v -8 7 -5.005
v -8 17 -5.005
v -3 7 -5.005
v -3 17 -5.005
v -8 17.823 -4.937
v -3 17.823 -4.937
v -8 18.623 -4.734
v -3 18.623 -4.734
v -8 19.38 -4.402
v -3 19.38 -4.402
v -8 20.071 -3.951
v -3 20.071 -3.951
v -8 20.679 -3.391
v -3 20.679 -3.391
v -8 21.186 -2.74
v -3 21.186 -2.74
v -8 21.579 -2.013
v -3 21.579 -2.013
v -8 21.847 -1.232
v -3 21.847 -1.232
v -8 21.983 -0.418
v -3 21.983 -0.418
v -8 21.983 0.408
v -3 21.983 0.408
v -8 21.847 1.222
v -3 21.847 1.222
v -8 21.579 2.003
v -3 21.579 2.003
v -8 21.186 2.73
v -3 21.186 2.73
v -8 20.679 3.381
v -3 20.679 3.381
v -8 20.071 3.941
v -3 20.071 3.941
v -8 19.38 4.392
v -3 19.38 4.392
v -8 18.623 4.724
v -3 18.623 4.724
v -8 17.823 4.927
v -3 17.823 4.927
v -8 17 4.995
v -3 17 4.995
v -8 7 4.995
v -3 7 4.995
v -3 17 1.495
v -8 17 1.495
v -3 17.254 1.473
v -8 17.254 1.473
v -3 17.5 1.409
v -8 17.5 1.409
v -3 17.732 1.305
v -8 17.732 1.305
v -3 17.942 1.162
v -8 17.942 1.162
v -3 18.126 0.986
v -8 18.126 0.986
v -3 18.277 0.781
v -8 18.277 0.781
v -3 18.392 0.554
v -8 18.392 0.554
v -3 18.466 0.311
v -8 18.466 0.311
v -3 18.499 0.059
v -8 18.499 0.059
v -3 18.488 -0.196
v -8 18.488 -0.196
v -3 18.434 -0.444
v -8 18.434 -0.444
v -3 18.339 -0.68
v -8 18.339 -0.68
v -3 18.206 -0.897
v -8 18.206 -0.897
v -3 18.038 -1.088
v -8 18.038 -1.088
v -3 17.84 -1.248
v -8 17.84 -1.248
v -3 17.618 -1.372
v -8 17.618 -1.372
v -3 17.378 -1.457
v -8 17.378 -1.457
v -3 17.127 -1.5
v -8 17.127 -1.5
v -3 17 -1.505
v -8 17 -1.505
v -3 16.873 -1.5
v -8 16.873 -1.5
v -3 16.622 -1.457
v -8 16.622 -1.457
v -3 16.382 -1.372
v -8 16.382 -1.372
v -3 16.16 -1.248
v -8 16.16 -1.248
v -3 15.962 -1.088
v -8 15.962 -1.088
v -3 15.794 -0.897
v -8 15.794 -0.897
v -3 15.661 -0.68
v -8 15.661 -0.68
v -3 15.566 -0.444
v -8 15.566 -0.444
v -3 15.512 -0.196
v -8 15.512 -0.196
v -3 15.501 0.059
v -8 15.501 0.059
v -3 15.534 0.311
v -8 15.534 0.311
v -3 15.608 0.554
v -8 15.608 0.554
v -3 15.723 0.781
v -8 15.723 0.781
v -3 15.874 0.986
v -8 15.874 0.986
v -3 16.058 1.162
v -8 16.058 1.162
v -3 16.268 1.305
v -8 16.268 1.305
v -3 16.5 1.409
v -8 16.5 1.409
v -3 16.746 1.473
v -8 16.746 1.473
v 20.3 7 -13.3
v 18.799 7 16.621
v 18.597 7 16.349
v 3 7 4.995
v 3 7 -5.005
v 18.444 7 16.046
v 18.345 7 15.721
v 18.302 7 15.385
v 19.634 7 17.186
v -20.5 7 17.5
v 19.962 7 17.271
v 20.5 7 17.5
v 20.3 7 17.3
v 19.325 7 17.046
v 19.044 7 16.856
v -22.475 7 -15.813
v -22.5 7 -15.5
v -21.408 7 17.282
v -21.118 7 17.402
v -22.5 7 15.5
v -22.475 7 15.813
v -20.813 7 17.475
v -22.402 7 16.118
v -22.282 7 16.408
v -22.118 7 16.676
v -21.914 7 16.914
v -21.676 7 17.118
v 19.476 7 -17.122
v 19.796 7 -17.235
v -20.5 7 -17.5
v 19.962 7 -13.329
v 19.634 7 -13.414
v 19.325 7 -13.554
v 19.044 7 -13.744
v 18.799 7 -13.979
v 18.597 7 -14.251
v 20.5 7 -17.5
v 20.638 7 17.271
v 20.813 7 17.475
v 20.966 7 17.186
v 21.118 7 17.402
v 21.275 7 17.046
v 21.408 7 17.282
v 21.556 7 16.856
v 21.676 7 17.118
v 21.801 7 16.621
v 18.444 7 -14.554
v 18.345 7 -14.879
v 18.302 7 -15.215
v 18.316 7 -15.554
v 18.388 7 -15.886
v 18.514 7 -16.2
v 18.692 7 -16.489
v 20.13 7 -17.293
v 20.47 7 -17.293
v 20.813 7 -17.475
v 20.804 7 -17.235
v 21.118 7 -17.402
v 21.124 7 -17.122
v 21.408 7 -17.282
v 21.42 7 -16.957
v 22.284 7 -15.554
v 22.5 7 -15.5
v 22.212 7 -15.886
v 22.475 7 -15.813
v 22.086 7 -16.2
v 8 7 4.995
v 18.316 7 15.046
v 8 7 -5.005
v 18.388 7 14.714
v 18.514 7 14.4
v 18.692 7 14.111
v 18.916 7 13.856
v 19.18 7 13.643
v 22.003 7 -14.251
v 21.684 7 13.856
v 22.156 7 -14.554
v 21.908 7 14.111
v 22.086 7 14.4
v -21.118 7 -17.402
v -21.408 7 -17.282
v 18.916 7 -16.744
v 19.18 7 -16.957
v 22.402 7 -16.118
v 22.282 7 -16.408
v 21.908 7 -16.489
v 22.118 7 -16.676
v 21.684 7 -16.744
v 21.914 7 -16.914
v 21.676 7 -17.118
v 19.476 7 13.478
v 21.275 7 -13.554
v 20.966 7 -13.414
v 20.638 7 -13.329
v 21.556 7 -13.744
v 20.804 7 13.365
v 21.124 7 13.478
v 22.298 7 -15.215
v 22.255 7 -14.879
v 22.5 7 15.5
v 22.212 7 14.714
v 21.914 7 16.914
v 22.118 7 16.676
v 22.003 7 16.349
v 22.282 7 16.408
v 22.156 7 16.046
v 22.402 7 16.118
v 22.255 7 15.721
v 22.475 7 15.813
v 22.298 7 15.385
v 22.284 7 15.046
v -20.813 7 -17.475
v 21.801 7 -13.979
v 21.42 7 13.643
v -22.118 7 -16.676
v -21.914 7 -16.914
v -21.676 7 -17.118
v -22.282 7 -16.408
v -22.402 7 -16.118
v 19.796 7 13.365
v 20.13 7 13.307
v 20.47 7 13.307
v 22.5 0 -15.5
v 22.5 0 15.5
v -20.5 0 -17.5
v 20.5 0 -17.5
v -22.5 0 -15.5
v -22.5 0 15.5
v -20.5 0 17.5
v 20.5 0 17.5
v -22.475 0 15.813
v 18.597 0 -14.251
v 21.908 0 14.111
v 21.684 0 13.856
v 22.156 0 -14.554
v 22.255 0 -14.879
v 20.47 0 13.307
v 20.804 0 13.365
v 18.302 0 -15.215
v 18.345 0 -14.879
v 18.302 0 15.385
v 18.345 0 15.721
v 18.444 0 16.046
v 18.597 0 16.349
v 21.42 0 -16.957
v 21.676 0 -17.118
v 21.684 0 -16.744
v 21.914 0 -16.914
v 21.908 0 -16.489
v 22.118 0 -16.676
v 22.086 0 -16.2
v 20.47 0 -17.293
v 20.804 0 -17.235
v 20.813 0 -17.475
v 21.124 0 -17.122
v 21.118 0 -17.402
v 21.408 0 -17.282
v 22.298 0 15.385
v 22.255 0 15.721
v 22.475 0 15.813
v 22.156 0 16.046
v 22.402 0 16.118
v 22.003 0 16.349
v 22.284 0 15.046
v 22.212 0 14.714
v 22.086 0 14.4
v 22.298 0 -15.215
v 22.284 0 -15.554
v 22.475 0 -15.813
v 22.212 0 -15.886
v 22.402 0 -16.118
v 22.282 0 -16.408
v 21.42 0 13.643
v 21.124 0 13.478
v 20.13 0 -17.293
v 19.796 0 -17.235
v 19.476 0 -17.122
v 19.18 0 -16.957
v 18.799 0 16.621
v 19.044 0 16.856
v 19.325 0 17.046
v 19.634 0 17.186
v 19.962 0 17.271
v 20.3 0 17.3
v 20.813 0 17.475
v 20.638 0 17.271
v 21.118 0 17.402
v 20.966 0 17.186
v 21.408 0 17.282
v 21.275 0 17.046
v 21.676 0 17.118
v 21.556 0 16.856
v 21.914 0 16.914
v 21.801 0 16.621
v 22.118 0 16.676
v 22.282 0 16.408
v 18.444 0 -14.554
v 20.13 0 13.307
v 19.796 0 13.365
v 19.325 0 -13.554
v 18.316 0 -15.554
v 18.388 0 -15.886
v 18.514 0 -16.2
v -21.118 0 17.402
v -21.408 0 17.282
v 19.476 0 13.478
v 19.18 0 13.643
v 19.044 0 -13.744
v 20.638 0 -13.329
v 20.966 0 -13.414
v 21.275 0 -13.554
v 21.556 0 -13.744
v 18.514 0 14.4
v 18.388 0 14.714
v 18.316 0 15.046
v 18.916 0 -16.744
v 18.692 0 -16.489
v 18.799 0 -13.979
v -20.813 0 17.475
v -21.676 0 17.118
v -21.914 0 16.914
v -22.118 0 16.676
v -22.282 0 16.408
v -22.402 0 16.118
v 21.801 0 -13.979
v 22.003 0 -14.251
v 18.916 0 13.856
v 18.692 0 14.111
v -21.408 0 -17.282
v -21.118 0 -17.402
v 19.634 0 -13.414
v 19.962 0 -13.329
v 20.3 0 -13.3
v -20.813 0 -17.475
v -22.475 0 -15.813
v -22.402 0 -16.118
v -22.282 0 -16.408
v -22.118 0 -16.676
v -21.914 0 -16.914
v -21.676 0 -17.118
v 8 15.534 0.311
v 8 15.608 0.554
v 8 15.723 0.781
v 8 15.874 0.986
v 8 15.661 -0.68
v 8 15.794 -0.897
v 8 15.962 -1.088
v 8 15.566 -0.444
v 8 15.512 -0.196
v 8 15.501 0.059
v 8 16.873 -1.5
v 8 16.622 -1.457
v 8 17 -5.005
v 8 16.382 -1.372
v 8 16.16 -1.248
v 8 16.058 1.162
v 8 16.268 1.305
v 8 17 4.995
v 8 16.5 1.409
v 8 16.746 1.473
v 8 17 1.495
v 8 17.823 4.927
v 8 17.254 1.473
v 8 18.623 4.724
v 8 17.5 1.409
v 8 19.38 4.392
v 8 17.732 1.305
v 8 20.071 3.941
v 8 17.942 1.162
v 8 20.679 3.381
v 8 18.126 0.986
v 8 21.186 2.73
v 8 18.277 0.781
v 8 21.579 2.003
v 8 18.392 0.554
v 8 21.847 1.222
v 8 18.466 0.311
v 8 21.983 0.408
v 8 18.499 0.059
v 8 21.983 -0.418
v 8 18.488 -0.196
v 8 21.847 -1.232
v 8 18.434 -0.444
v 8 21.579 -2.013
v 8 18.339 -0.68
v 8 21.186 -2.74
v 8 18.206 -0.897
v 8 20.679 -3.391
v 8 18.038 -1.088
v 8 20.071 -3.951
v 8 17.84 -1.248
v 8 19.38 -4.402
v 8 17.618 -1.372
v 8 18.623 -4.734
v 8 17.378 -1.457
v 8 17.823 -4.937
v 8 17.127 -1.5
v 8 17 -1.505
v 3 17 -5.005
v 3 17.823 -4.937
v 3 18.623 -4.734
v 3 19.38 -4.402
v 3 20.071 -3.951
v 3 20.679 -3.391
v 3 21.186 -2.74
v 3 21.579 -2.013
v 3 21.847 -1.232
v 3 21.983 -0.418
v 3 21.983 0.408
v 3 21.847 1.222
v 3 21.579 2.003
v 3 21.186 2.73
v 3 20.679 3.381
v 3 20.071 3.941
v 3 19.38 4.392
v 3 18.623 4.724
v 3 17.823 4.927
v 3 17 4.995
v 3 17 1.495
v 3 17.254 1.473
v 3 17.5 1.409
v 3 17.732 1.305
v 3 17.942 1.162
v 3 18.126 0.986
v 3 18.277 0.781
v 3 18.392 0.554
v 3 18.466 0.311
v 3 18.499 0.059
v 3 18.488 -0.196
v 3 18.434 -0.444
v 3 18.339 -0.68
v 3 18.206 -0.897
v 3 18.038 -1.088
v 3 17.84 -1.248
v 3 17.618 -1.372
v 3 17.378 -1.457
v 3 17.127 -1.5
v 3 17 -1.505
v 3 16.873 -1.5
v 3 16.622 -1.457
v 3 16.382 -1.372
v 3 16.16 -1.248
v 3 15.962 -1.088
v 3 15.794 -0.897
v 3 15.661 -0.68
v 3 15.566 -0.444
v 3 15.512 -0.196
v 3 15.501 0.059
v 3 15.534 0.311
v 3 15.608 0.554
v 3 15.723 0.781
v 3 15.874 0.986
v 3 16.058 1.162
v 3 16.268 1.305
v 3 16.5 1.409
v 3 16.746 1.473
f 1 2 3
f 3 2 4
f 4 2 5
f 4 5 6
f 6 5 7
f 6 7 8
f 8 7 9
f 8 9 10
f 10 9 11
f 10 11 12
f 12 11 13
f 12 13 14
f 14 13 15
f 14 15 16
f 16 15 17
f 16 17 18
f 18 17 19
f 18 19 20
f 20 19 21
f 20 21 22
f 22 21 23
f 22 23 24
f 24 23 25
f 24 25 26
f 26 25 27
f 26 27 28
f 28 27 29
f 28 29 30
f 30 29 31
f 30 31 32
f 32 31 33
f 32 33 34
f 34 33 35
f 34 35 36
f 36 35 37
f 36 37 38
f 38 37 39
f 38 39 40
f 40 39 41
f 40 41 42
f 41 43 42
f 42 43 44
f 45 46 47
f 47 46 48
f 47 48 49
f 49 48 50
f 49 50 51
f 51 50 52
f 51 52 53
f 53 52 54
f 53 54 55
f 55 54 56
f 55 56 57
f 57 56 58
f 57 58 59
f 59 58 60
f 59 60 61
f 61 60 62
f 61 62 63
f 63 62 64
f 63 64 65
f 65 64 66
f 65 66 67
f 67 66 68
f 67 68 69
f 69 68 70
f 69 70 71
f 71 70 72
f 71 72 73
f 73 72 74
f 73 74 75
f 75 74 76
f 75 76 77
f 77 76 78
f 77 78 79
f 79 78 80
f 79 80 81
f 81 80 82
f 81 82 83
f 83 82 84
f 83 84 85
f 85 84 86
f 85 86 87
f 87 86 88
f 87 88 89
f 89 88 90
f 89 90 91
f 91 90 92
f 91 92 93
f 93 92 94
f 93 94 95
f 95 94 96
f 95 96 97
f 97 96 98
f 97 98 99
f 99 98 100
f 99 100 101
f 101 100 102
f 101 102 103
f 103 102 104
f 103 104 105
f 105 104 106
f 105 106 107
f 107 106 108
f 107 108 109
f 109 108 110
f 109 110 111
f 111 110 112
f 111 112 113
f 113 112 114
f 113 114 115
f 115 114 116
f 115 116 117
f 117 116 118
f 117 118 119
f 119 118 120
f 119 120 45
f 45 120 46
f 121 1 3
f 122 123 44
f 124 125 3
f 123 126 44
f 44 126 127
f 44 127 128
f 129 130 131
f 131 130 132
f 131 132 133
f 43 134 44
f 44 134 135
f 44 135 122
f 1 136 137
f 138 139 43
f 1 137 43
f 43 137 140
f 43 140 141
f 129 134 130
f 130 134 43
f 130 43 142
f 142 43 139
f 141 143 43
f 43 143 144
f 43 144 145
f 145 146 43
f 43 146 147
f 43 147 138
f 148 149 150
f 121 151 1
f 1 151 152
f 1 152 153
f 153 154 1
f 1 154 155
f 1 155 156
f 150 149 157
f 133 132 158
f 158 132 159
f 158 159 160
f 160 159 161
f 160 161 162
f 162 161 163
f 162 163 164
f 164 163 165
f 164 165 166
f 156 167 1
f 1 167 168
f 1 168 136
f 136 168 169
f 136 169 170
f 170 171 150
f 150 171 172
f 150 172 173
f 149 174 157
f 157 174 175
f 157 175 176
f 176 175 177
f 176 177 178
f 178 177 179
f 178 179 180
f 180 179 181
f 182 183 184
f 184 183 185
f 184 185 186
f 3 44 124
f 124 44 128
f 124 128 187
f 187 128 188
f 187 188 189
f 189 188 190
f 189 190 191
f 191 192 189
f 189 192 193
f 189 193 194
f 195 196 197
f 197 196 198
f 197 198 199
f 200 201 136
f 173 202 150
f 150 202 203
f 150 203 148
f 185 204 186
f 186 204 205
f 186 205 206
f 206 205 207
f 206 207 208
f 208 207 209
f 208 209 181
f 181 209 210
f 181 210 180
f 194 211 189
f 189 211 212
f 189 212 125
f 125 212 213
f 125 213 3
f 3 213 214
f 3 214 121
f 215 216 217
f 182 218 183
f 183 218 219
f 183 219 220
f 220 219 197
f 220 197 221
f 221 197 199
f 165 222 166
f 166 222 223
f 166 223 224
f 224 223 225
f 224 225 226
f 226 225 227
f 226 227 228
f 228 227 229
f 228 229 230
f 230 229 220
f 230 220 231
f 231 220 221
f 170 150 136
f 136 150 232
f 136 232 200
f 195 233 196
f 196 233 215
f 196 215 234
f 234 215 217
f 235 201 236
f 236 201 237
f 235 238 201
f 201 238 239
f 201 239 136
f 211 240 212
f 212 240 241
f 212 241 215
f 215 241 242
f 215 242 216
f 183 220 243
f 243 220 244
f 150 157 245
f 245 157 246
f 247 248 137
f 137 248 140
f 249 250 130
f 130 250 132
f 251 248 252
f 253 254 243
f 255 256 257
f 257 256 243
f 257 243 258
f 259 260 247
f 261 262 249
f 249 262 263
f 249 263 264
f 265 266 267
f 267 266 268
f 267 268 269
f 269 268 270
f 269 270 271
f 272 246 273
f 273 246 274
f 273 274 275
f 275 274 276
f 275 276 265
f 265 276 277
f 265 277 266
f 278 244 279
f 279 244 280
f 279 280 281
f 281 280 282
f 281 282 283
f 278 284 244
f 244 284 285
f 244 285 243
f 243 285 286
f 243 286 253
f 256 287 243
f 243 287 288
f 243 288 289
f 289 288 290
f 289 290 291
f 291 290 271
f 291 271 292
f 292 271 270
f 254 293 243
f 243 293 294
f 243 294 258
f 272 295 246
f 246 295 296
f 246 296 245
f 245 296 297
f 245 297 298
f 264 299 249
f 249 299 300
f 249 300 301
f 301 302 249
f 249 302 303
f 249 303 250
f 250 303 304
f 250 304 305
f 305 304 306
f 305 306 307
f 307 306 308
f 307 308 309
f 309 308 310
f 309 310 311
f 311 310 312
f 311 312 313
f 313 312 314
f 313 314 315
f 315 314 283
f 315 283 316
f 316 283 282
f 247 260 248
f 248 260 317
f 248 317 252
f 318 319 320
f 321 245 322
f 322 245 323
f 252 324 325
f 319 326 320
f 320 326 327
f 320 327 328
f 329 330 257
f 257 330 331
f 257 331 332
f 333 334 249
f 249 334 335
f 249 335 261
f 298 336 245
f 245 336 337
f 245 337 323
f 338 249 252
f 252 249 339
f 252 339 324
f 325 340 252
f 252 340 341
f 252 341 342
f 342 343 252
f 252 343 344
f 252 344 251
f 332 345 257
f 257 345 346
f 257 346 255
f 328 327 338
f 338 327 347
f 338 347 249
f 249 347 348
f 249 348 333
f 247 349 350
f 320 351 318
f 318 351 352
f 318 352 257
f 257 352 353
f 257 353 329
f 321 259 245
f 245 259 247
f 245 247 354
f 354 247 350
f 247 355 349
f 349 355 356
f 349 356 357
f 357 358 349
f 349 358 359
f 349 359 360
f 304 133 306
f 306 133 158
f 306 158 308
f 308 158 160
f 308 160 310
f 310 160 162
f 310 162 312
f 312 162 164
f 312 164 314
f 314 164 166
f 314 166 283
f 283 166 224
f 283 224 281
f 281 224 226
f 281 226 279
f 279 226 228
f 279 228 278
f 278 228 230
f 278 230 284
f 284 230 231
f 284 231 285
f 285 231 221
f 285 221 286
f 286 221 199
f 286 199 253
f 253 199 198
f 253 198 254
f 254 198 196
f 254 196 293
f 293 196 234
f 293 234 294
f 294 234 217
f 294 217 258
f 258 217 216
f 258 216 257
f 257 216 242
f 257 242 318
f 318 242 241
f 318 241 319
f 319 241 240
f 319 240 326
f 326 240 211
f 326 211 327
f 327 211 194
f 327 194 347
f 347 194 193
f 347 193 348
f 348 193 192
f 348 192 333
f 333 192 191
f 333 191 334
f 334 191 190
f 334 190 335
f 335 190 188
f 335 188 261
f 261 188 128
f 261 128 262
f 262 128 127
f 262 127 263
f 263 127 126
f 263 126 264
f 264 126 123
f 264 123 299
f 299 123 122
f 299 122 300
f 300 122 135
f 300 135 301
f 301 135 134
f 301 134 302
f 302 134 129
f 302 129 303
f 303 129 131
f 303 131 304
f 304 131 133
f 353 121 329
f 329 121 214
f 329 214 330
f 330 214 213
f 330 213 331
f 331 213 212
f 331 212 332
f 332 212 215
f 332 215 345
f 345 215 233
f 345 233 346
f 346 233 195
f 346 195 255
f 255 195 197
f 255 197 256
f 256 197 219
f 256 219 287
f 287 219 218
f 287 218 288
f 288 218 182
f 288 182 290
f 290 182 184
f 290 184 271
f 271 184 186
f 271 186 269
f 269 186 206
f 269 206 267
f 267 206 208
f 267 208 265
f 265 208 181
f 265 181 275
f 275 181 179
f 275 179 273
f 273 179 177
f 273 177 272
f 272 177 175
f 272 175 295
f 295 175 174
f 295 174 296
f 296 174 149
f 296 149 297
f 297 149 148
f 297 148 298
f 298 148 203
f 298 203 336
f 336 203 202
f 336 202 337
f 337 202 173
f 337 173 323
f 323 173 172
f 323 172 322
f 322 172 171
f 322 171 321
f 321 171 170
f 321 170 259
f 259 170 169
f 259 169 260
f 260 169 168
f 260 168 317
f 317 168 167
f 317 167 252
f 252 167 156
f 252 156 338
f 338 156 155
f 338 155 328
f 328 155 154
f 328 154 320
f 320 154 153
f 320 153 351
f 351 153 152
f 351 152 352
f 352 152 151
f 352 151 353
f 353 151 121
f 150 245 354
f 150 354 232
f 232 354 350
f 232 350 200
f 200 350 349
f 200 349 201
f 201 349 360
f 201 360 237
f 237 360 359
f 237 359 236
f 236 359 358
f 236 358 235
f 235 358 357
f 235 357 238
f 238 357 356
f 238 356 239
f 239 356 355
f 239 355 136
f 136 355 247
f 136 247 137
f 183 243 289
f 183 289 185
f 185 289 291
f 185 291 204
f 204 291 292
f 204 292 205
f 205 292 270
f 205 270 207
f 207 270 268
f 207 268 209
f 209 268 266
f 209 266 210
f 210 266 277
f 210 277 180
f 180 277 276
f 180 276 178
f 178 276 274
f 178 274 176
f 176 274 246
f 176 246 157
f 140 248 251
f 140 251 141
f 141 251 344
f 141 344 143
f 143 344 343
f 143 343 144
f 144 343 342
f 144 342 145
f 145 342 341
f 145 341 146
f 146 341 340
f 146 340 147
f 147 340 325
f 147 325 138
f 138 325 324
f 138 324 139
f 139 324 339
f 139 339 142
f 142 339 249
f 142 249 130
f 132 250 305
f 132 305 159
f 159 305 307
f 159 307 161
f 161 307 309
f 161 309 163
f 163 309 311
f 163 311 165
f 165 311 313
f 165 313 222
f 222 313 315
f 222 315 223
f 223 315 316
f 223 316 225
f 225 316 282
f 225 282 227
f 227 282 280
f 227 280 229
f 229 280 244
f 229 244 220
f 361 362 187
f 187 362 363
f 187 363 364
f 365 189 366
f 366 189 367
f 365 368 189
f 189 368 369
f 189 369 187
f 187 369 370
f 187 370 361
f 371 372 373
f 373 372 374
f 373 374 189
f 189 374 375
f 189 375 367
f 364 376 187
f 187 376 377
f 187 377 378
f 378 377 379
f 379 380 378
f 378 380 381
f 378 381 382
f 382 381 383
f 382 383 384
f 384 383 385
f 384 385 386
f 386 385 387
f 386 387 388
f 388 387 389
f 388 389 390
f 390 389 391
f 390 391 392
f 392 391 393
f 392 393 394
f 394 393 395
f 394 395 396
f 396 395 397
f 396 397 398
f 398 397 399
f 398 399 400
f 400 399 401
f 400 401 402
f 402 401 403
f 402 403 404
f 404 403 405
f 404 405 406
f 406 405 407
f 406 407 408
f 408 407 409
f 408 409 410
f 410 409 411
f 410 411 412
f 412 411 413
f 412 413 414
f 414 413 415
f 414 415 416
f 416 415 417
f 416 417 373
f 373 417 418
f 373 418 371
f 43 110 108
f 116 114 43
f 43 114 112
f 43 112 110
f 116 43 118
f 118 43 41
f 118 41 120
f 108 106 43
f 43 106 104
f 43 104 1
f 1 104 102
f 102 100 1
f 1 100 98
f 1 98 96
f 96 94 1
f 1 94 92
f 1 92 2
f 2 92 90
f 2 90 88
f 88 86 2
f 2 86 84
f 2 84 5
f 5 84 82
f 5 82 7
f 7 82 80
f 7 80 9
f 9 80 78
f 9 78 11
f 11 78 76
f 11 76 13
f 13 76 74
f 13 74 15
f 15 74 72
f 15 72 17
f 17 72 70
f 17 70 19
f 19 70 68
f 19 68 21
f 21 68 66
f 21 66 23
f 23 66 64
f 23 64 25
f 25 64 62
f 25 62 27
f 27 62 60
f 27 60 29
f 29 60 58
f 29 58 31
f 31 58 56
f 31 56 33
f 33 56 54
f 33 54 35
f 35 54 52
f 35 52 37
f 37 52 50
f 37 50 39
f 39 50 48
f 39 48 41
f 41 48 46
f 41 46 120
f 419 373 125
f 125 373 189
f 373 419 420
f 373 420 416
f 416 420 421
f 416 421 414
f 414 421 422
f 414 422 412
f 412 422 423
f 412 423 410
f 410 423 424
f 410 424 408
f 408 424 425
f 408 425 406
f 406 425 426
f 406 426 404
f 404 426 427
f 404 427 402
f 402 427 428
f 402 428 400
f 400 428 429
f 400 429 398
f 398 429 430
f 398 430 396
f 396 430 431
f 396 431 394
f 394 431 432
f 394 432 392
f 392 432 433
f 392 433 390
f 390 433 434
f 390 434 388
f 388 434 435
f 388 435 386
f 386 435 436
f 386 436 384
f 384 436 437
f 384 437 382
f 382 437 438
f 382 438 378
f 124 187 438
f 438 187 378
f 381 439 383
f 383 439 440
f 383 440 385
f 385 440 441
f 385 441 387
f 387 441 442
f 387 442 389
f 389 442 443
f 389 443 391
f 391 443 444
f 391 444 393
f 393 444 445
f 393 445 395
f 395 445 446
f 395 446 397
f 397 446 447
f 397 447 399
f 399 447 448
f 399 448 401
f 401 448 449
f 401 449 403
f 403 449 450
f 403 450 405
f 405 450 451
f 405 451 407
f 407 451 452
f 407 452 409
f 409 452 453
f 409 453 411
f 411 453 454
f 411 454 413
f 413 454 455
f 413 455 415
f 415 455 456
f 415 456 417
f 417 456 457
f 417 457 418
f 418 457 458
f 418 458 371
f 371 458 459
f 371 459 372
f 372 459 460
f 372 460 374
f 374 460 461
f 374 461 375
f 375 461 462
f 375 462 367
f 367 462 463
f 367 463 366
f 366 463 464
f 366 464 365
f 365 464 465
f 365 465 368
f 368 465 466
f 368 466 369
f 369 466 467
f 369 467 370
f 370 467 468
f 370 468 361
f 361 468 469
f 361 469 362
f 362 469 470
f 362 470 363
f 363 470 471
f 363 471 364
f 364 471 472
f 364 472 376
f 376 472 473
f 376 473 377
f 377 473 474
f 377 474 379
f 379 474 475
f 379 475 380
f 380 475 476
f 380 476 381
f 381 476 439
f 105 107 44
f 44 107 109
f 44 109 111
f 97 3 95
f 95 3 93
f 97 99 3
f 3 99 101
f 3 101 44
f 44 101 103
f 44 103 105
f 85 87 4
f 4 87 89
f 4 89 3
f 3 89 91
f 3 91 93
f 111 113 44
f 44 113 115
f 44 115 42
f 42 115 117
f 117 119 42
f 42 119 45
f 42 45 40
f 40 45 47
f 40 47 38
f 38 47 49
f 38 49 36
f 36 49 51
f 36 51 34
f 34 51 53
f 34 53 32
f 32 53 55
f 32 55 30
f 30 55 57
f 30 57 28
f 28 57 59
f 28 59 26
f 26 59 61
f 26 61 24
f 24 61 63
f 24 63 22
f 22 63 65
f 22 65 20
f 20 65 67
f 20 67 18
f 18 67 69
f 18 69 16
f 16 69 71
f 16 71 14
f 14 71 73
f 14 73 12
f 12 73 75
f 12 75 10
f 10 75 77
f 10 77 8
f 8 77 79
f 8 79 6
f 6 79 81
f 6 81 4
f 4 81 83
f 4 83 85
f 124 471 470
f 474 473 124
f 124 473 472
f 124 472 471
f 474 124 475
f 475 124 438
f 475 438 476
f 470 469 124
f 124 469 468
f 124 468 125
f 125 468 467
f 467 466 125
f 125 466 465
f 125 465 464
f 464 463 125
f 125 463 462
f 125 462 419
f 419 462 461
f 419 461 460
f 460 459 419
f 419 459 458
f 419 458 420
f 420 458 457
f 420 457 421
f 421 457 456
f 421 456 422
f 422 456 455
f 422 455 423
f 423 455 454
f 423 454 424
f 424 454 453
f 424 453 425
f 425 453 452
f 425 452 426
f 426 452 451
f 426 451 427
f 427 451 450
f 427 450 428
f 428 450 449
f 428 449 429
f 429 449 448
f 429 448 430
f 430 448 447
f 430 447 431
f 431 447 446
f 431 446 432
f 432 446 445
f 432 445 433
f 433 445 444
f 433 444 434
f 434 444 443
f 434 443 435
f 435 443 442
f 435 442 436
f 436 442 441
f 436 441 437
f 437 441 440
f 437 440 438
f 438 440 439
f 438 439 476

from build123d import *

# Parameters (mm, degrees)
SKETCH_1_W          = 45
SKETCH_1_H          = 35
EXTRUDE_1_DEPTH     = 7
SKETCH_2_R          = 2
CUT_EXTRUDE_1_DEPTH = 7
FILLET_1_R          = 2
SKETCH_3_R          = 1.5
EXTRUDE_2_DEPTH     = 8
SKETCH_3_2_R        = 1.5
CUT_EXTRUDE_2_DEPTH = 3


with BuildPart() as part:
    # 草图1 → 凸台-拉伸1 (new body)
    with BuildSketch(Plane(origin=(0, 0, 0), x_dir=(1, 0, 0), z_dir=(0, 1, 0))):
        Rectangle(SKETCH_1_W, SKETCH_1_H)
    extrude(amount=EXTRUDE_1_DEPTH)

    # 草图2 → 切除-拉伸1 (cut)
    with BuildSketch(Plane(origin=(0, 7, 0), x_dir=(1, 0, 0), z_dir=(0, 1, 0))):
        with Locations((20.3, 15.3)):
            Circle(SKETCH_2_R)
        with Locations((20.3, -15.3)):
            Circle(SKETCH_2_R)
    extrude(amount=-CUT_EXTRUDE_1_DEPTH, mode=Mode.SUBTRACT)

    # 圆角1
    fillet_1_edges = [part.edges().sort_by_distance(p)[0] for p in [
        (-22.5, 3.5, -17.5),
        (22.5, 3.5, -17.5),
        (-22.5, 3.5, 17.5),
        (22.5, 3.5, 17.5),
    ]]
    fillet(fillet_1_edges, radius=FILLET_1_R)

    # 草图3 → 凸台-拉伸2 (add, symmetric)
    with BuildSketch(Plane(origin=(0, 0, 0), x_dir=(0, 0, -1), z_dir=(1, 0, 0))):
        with BuildLine():
            Line((0.005, 7), (-4.995, 7))
            Line((-4.995, 7), (-4.995, 17))
            ThreePointArc((-4.995, 17), (0.005, 22), (5.005, 17))
            Line((5.005, 17), (5.005, 7))
            Line((5.005, 7), (0.005, 7))
        make_face()
        with Locations((0.005, 17)):
            Circle(SKETCH_3_R, mode=Mode.SUBTRACT)
    extrude(amount=EXTRUDE_2_DEPTH, both=True)

    # 草图3<2> → 切除-拉伸2 (cut, symmetric)
    with BuildSketch(Plane(origin=(0, 0, 0), x_dir=(0, 0, -1), z_dir=(1, 0, 0))):
        with BuildLine():
            Line((0.005, 7), (-4.995, 7))
            Line((-4.995, 7), (-4.995, 17))
            ThreePointArc((-4.995, 17), (0.005, 22), (5.005, 17))
            Line((5.005, 17), (5.005, 7))
            Line((5.005, 7), (0.005, 7))
        make_face()
        with Locations((0.005, 17)):
            Circle(SKETCH_3_2_R, mode=Mode.SUBTRACT)
    extrude(amount=CUT_EXTRUDE_2_DEPTH, both=True, mode=Mode.SUBTRACT)


solid = part.part
